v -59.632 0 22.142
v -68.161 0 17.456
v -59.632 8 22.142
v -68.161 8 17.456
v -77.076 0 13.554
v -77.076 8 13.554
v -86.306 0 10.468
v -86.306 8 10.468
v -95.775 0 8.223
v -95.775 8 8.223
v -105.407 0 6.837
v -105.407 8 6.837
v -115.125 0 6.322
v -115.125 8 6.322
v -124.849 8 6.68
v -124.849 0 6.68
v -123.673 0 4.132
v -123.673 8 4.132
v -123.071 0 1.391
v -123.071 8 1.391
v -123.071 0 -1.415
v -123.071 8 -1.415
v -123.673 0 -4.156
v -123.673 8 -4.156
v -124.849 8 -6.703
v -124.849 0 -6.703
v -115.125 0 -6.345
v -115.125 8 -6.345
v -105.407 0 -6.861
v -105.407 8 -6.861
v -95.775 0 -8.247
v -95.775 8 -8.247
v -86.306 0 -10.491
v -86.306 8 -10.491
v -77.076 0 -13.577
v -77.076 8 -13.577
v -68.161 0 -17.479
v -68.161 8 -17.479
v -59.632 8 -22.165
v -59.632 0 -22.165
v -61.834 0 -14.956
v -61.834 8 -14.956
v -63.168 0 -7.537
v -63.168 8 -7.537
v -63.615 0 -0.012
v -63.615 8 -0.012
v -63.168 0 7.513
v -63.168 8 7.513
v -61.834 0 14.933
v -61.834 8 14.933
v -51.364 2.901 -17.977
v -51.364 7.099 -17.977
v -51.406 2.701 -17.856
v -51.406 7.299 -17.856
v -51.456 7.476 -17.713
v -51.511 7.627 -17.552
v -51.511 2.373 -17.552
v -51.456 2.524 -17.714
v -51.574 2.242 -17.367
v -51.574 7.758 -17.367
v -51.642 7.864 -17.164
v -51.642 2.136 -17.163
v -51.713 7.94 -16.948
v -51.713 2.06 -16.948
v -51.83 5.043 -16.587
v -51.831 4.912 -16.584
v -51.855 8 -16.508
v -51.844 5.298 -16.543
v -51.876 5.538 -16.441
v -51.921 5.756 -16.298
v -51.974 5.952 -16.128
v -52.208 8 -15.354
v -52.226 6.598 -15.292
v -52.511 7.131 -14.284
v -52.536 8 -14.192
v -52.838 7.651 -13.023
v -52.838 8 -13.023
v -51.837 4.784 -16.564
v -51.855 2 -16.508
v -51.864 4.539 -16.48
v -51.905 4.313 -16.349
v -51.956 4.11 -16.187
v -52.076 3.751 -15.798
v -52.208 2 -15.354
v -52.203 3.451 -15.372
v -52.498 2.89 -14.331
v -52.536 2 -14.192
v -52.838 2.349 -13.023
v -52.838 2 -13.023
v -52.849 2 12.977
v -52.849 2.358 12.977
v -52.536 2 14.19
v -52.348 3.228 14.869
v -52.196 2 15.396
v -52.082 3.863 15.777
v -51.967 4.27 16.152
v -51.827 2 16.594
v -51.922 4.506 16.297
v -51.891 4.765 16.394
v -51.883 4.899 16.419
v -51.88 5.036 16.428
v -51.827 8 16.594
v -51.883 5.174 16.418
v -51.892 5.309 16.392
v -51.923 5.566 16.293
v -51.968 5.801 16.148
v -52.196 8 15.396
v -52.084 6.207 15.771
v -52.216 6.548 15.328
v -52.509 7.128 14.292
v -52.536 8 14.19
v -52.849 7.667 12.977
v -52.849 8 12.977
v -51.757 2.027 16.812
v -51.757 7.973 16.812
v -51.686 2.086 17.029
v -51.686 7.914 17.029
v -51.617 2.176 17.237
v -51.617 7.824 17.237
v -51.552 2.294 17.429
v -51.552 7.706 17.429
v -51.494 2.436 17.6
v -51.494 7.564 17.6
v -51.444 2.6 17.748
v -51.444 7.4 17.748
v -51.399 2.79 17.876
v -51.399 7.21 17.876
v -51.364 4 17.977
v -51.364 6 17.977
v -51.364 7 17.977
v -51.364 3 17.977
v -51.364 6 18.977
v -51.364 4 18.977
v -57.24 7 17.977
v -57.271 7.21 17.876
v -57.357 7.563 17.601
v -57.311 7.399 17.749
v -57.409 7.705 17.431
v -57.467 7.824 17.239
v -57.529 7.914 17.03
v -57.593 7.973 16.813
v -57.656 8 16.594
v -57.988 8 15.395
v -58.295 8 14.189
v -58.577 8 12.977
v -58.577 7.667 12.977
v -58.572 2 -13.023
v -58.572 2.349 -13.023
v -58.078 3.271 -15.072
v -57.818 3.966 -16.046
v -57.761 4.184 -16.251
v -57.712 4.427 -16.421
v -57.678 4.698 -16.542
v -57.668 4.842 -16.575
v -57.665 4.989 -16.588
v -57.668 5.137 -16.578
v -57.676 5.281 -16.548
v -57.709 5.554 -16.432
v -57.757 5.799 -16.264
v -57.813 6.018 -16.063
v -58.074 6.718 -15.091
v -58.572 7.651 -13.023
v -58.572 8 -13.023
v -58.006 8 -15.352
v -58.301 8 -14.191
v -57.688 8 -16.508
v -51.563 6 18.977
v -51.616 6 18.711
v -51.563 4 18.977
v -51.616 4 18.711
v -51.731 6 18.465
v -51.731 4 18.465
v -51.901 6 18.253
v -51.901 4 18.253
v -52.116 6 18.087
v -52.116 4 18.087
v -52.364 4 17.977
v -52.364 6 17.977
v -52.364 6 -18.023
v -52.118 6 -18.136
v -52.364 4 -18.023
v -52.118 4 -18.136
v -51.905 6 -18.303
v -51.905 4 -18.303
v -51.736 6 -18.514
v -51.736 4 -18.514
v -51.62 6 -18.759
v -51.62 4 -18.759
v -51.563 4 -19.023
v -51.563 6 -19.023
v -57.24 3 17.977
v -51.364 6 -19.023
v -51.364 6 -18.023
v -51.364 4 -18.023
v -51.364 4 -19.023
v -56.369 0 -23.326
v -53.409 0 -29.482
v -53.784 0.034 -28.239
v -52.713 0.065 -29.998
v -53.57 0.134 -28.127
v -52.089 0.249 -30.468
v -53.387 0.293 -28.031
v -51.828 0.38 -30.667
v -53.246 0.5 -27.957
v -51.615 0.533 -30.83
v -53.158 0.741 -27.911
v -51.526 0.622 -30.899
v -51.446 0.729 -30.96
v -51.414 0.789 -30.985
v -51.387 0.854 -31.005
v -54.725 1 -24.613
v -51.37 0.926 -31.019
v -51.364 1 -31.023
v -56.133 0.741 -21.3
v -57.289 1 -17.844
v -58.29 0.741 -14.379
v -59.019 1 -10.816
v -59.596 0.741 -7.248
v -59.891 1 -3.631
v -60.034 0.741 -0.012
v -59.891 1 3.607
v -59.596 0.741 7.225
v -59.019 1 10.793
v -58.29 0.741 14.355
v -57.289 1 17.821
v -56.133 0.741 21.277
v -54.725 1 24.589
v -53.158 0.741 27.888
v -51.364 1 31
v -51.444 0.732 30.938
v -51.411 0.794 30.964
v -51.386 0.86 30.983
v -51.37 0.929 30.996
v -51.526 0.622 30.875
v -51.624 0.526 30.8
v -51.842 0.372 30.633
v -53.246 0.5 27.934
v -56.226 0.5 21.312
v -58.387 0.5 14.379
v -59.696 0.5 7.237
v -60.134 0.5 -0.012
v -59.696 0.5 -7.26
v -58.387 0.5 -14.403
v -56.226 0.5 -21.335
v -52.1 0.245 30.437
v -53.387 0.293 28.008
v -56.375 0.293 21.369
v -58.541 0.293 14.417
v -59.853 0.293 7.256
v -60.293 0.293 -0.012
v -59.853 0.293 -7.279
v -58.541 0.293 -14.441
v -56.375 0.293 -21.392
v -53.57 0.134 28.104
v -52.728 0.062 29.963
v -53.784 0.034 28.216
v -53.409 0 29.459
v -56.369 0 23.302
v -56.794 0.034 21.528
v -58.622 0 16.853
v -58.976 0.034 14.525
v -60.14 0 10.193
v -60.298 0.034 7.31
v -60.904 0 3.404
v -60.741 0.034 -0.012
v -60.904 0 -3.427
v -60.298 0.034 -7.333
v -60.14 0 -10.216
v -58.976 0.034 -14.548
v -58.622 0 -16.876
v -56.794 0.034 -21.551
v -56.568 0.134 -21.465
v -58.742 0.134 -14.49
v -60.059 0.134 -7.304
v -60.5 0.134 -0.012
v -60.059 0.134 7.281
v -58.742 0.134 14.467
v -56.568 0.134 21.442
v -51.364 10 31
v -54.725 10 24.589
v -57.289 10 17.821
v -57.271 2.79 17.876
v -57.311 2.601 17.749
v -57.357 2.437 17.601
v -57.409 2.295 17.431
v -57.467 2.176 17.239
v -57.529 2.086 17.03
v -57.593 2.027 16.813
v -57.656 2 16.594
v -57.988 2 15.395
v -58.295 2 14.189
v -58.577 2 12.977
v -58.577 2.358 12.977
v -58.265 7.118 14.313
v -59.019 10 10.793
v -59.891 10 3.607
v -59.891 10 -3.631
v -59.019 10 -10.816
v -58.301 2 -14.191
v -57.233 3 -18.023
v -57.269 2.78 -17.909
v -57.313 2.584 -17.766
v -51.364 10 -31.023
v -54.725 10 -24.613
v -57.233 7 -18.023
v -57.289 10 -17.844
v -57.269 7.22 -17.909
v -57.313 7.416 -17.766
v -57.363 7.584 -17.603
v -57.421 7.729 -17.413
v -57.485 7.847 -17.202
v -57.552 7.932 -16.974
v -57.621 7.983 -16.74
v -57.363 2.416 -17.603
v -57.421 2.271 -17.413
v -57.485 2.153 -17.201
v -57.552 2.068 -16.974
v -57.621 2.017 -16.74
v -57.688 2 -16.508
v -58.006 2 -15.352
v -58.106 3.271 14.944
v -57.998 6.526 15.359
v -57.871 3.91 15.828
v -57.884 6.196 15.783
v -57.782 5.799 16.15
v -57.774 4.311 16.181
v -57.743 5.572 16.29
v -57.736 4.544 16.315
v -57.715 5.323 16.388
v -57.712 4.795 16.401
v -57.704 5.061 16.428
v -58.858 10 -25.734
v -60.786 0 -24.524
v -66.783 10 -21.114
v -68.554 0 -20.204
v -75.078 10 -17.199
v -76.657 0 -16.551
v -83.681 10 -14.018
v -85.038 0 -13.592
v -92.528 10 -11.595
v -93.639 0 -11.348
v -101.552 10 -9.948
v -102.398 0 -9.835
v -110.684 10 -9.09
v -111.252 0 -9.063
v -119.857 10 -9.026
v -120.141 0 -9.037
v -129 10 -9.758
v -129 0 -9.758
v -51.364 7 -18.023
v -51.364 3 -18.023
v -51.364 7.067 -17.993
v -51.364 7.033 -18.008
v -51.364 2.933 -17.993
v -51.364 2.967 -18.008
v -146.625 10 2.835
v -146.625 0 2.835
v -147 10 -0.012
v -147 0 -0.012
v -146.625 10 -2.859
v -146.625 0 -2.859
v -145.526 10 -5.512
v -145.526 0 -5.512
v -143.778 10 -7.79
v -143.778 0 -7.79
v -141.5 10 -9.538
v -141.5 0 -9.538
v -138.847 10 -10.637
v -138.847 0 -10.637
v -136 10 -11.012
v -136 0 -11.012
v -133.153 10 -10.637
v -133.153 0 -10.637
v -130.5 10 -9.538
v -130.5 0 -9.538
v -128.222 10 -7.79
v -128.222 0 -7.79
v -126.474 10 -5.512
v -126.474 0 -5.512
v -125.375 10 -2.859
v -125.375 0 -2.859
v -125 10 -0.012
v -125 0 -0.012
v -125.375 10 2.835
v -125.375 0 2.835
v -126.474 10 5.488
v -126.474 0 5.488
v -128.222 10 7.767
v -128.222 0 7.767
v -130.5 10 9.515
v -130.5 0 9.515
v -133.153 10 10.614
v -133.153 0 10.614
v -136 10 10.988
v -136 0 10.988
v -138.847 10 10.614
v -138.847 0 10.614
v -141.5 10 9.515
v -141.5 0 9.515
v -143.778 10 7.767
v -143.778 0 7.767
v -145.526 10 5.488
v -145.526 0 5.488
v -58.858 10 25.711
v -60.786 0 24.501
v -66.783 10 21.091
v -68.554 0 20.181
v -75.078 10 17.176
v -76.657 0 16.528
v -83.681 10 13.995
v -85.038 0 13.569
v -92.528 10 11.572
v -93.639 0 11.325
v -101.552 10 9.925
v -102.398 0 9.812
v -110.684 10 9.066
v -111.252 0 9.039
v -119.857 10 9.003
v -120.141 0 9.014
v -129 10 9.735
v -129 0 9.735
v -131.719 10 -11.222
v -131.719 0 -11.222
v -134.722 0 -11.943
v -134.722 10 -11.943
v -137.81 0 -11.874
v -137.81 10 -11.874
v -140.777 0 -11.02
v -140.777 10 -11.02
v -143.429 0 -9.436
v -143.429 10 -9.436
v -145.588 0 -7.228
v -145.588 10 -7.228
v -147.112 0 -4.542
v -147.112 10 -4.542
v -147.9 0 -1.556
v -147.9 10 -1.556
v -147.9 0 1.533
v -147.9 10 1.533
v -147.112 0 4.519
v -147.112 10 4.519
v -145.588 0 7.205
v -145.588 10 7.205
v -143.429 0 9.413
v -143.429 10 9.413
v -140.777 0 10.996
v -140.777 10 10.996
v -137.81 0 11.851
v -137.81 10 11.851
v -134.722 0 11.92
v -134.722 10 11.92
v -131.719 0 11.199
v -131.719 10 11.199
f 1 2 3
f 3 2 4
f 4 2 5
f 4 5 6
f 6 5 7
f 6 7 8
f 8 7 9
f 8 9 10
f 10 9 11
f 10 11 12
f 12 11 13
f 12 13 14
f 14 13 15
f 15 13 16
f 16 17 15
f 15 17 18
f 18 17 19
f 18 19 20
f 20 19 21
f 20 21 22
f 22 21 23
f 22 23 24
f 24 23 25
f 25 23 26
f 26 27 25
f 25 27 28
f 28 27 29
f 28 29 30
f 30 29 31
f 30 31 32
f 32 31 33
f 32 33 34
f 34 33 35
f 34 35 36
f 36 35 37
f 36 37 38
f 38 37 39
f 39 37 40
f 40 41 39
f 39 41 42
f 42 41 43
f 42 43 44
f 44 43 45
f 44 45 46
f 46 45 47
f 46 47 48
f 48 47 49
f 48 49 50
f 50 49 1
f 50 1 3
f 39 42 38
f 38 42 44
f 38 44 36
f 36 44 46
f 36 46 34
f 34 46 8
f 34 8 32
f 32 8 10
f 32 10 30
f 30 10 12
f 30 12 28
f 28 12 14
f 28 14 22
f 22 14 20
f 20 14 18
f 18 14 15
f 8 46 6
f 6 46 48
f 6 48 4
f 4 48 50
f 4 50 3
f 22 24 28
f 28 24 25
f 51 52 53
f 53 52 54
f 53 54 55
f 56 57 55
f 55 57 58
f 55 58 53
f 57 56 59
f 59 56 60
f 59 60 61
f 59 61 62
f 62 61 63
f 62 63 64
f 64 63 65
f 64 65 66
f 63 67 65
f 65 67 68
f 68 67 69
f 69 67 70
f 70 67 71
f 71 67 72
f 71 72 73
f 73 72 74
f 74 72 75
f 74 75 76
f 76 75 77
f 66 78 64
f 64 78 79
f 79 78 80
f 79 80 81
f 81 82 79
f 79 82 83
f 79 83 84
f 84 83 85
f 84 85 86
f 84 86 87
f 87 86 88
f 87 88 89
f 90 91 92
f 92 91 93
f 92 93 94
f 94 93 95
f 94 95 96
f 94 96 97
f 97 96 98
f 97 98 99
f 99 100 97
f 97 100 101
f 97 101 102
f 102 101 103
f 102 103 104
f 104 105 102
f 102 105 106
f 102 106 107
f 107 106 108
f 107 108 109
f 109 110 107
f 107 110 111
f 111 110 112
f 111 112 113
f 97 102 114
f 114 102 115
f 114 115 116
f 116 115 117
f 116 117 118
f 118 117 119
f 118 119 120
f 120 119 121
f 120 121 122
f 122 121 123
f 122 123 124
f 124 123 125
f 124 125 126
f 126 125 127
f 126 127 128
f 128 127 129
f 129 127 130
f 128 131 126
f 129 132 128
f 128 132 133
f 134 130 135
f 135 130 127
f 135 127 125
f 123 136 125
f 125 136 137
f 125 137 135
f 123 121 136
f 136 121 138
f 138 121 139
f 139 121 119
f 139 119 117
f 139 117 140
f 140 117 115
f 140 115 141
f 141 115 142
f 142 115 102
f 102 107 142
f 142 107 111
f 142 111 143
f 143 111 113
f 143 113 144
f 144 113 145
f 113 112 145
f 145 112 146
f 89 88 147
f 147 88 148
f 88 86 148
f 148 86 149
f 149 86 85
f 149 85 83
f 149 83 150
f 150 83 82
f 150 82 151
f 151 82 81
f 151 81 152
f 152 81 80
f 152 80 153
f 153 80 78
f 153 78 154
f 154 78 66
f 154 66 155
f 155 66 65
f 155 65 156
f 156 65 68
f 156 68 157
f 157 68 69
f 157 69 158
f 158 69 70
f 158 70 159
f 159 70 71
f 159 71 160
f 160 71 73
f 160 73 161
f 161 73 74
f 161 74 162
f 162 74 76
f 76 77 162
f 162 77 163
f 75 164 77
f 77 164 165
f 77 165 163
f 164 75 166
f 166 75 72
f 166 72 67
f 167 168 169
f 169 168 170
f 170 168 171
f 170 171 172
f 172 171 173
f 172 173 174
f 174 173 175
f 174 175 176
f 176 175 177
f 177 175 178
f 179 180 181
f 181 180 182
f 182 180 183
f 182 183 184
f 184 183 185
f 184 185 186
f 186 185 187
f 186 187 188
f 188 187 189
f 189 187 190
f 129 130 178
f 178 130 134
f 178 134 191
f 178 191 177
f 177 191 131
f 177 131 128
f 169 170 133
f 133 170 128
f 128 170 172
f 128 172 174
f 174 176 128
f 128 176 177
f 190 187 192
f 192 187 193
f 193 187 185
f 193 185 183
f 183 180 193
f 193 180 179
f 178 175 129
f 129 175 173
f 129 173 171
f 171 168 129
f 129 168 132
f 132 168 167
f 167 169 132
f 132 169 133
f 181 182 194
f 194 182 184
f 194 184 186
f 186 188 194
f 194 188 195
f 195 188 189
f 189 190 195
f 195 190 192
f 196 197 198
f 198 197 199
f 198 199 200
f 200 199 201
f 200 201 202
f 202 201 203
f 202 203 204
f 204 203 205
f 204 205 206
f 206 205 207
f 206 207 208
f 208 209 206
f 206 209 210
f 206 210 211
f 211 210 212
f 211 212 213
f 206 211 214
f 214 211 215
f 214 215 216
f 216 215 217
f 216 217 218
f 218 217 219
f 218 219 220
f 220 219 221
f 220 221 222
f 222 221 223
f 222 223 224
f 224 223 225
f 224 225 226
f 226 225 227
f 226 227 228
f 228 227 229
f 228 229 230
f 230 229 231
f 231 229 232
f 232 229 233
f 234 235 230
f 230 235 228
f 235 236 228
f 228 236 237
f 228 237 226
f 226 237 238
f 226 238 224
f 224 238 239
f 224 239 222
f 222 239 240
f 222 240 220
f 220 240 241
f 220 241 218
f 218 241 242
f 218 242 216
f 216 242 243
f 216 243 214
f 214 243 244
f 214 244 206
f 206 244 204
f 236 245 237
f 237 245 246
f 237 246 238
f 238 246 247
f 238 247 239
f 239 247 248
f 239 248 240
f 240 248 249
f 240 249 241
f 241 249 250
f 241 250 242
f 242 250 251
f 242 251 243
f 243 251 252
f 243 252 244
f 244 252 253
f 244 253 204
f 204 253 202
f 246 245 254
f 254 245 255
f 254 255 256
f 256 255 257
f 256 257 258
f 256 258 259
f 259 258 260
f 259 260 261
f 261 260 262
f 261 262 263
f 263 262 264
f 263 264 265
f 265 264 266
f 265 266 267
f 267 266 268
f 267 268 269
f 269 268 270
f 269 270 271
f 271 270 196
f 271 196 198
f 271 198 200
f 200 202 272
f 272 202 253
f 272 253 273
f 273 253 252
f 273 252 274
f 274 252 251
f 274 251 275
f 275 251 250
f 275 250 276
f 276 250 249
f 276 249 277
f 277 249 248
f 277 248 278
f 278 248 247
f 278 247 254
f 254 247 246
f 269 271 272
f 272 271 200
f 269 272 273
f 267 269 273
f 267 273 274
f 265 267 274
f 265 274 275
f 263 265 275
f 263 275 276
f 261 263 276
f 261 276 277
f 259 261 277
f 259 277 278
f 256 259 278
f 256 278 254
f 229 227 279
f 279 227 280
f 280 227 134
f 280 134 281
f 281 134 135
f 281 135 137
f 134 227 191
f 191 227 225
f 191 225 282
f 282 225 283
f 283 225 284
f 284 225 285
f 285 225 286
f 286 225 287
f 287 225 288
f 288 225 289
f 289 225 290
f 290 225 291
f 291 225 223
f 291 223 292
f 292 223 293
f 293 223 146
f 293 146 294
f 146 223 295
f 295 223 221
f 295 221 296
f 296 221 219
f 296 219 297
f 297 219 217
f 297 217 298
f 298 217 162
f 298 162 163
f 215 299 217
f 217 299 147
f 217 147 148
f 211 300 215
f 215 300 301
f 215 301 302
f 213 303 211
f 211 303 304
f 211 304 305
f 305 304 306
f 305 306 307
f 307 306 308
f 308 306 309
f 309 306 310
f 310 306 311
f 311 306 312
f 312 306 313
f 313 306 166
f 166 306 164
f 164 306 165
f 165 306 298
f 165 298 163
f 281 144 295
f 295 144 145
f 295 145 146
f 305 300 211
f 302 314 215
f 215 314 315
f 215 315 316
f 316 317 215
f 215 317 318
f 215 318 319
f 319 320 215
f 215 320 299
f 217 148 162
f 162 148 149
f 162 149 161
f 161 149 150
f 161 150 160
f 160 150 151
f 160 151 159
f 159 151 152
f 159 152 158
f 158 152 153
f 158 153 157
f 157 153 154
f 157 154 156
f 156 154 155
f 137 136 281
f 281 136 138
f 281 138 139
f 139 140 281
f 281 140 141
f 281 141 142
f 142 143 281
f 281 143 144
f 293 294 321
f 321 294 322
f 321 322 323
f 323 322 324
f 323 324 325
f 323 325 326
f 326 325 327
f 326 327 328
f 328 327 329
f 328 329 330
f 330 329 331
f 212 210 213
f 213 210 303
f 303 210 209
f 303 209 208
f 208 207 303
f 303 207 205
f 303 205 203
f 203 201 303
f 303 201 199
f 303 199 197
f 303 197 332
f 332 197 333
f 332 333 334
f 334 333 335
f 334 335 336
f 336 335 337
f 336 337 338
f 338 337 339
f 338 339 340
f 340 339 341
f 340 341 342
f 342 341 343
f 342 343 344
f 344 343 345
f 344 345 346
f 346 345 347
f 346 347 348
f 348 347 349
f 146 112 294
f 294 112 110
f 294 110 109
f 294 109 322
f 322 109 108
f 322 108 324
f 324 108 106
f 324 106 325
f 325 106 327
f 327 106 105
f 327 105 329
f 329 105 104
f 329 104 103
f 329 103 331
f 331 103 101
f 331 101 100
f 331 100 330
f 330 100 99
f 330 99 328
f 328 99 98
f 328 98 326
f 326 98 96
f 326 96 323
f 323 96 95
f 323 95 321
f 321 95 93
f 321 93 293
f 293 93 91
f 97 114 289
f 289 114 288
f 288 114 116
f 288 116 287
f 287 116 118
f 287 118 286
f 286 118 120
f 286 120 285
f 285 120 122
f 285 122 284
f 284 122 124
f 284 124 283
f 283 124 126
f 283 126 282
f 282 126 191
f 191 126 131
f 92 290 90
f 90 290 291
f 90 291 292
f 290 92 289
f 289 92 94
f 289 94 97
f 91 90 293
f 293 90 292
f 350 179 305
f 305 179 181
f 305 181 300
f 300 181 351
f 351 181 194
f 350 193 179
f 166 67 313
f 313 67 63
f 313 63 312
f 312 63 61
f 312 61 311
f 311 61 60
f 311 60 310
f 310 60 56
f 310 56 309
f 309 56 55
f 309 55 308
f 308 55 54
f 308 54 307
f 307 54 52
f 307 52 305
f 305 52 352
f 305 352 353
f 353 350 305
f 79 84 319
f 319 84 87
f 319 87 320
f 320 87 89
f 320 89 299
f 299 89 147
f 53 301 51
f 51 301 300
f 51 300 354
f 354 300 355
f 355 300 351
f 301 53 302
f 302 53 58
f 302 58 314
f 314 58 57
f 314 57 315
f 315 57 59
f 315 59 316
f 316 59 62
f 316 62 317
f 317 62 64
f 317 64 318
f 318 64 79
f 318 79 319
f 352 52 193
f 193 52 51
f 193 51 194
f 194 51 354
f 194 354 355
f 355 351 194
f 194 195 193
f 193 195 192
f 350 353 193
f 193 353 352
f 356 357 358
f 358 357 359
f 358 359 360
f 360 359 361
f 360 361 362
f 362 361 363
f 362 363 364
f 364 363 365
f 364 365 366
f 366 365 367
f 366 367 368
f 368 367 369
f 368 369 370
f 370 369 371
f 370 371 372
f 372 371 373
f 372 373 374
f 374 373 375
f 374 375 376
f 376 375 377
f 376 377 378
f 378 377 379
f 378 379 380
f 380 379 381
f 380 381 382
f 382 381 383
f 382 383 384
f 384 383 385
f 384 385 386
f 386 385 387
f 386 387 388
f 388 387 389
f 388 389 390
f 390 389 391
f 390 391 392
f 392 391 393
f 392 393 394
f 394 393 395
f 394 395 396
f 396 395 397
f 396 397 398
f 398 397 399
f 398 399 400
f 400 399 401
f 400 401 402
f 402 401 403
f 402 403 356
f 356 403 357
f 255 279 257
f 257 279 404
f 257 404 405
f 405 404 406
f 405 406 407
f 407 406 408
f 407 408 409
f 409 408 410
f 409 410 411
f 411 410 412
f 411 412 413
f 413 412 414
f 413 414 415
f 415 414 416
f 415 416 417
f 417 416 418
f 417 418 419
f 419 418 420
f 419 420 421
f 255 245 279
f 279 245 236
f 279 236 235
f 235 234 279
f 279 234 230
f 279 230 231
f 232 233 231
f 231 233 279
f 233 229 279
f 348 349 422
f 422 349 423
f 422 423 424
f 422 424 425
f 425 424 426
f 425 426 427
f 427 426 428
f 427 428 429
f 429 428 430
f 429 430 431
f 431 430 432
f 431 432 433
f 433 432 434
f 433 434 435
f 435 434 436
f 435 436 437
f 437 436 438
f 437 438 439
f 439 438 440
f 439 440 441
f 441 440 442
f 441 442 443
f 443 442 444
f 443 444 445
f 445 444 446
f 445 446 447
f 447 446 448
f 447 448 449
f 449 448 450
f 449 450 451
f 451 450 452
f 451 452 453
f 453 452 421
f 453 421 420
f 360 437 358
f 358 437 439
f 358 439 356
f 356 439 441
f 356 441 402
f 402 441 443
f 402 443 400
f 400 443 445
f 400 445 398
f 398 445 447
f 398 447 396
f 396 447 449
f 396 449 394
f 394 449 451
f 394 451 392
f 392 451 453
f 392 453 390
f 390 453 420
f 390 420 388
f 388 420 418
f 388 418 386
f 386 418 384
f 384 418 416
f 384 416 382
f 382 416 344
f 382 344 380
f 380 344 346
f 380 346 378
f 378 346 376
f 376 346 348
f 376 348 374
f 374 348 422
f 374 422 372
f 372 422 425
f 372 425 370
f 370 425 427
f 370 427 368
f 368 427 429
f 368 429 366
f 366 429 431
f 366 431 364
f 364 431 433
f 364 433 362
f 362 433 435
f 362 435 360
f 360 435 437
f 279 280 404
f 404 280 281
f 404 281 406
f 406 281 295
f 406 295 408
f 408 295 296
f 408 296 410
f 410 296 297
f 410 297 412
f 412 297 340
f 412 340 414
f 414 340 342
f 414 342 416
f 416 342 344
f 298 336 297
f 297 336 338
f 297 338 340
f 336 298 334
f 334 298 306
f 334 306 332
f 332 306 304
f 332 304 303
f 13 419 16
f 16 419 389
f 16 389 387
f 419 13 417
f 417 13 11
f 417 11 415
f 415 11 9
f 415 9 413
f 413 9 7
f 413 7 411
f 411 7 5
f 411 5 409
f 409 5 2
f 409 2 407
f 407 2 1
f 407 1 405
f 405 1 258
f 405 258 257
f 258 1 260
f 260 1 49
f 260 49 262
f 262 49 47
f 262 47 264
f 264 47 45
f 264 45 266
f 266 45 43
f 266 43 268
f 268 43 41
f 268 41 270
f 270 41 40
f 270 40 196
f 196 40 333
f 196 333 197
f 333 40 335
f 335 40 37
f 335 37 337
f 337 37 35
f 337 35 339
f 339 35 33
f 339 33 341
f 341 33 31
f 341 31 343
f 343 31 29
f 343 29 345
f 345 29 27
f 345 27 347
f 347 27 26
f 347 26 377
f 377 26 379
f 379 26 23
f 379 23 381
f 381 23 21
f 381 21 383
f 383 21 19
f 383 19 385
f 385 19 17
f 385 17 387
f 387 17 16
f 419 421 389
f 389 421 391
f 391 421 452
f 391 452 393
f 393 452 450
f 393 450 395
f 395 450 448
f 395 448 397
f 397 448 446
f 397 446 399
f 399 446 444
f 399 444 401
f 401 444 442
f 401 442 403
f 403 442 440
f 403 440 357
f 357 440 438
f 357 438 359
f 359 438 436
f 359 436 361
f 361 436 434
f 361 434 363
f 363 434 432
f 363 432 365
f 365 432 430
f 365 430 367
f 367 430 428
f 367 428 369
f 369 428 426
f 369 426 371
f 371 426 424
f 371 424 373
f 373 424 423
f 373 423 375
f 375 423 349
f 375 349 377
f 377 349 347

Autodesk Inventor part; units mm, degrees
ref_plane "YZ Plane" through (0, 0, 0) normal (1, 0, 0) x (0, 1, 0)
ref_plane "XZ Plane" through (0, 0, 0) normal (0, 1, 0) x (-1, 0, 0)
ref_plane "XY Plane" through (0, 0, 0) normal (0, 0, 1) x (1, 0, 0)
sketch "Esquisse1" plane through (0, 0, 0) normal (0, 1, 0) x (-1, 0, 0)
  arc A0 (51.3642, -31.0232) -> (51.3642, 31) centre (0, -0.0116) ccw
  arc A1 (129, -9.7584) -> (129, 9.7352) centre (136, -0.0116) ccw
  arc A2 (51.3642, 31) -> (129, 9.7352) centre (116, 114.6263) ccw
  line L0 (64, -0.0116) -> (129, -0.0116) construction
  arc A3 (129, -9.7584) -> (129, 9.7352) centre (136, -0.0116) ccw
  arc A4 (129, -9.7584) -> (51.3642, -31.0232) centre (116, -114.6495) ccw
  circle A5 centre (136, -0.0116) radius 11
  point P0 (0, 0)
  dimension "d0" = 120
  dimension "d1" = 24
  dimension "d2" = 22
extrude "Extrusion1" add sketch "Esquisse1" along normal blind 10
ref_plane "Plan de construction1" through (-51.3642, 0, -31.0232) normal (1, 0, 0) x (0, 1, 0)
sketch "Esquisse2" plane through (-51.3642, 0, -31.0232) normal (1, 0, 0) x (0, 1, 0)
  line L0 (5, 64.5652) -> (5, -0.1304) construction
  line L1 (3, 49) -> (7, 49)
  line L2 (8, 47.6173) -> (8, 44)
  line L3 (2, 44) -> (2, 47.6173)
  line L4 (2, 49) -> (8, 43) construction
  line L5 (8, 49) -> (2, 43) construction
  line L6 (8, 18) -> (8, 14.5151)
  line L7 (7, 13) -> (3, 13)
  line L8 (2, 14.5151) -> (2, 18)
  line L9 (2, 19) -> (8, 13) construction
  line L10 (8, 19) -> (2, 13) construction
  line L11 (10, 62.0232) -> (10, 0) projected
  line L12 (0, 0) -> (10, 0) projected
  line L13 (0, 62.0232) -> (10, 62.0232) projected
  spline S0 degree 4 poles (7.6671, 44) (6.4354, 47.4326) (4.9707, 48.7302) (3.6119, 47.2748) (2.3584, 44) knots 0 0 0 0 0 1 1 1 1 1
  spline S1 degree 4 poles (7.6511, 18) (6.3929, 14.6165) (5, 13.0055) (3.6071, 14.6165) (2.3489, 18) knots 0 0 0 0 0 1 1 1 1 1
  arc A0 (8, 47.4506) -> (7, 49) centre (6.4288, 47.5339) ccw
  arc A1 (3, 49) -> (2, 47.4506) centre (3.5712, 47.5339) ccw
  arc A2 (7, 13) -> (8, 14.5151) centre (6.3523, 14.5151) ccw
  arc A3 (2, 14.5151) -> (3, 13) centre (3.6477, 14.5151) ccw
  line L14 (2, 18) -> (2.3489, 18)
  line L15 (7.6511, 18) -> (8, 18)
  line L16 (2.776, 16.8516) -> (1.9218, 19.1484) construction
  arc A4 (2.0268, 18.9251) -> (2.7095, 17.0892) centre (24.2353, 26.1386) ccw construction
  line L17 (8.0782, 19.1484) -> (7.224, 16.8516) construction
  arc A5 (7.2905, 17.0892) -> (7.9732, 18.9251) centre (-14.2353, 26.1386) ccw construction
  line L18 (2, 44) -> (2.3584, 44)
  line L19 (7.6671, 44) -> (8, 44)
  line L20 (2.7888, 45.1243) -> (1.9281, 42.8757) construction
  arc A6 (2.7221, 44.891) -> (2.0343, 43.0939) centre (22.8073, 36.1728) ccw construction
  line L21 (8.0877, 42.828) -> (7.2466, 45.172) construction
  arc A7 (7.9784, 43.0548) -> (7.3065, 44.9274) centre (-10.0817, 37.6313) ccw construction
  point P0 (0, 31.0232)
  point P1 (5, 46)
  point P2 (5, 16)
  dimension "d10" = 2
  dimension "d11" = 2
  dimension "d12" = 13
  dimension "d13" = 13.0232
  dimension "d19" = 1
  dimension "d20" = 1
  dimension "d21" = 1
  dimension "d22" = 1
extrude "Extrusion2" add sketch "Esquisse2" against normal blind 10
sketch "Esquisse3" plane through (-51.3642, 8, 16.594) normal (0, 1, 0) x (1, 0, 0)
  point P0 (51.3642, 16.594)
sketch "Esquisse4" plane through (-51.3642, 8, 16.594) normal (0, 1, 0) x (1, 0, 0)
  point P0 (51.3642, 16.594)
ref_plane "Plan de construction7" through (-55.0062, 0, -31.0232) normal (1, 0, 0) x (0, 1, 0)
ref_plane "Plan de construction6" through (-60.1142, 0, -31.0232) normal (1, 0, 0) x (0, 1, 0)
fillet "Congé2" radius 1 1 edges at (-60, 0, -0.0116)
sketch "Esquisse7" plane through (-51.3642, 0, -31.0232) normal (1, 0, 0) x (0, 1, 0)
  line L0 (7, 49) -> (3, 49) projected
  line L1 (4, 49) -> (6, 49)
  line L2 (6, 49) -> (6, 50)
  line L3 (6, 50) -> (4, 50)
  line L4 (4, 50) -> (4, 49)
  line L5 (3, 13) -> (7, 13) projected
  line L6 (4, 13) -> (6, 13)
  line L7 (6, 13) -> (6, 12)
  line L8 (6, 12) -> (4, 12)
  line L9 (4, 12) -> (4, 13)
  point P0 (0, 31.0232)
extrude "Extrusion5" add sketch "Esquisse7" against normal blind 1
ref_plane "Plan de construction8" through (-51.3642, 4, -19.0232) normal (0, -1, 0) x (1, 0, 0)
sketch "Esquisse8" plane through (-51.3642, 4, -19.0232) normal (0, -1, 0) x (1, 0, 0)
  line L0 (-1, 37) -> (-1, 38) projected
  line L1 (0, 37) -> (-1, 37) projected
  line L2 (0, 1) -> (0, 0) projected
  line L3 (-1, 1) -> (-1, 0)
  line L4 (0, 1) -> (-5.8685, 1) projected
  line L5 (0, 38) -> (-1, 38) projected
  line L6 (-1, 37) -> (-1, 38)
  line L7 (-1, 0) -> (-1, 1) projected
  line L8 (0, 0) -> (0, 1) projected
  line L9 (-1, 1) -> (0, 1) projected
  line L10 (-1, 0) -> (-1, 1) projected
  line L11 (0, 0) -> (-1, 0) projected
  line L12 (0, 0) -> (0, 1) projected
  line L13 (-1, 1) -> (0, 1) projected
  line L14 (-1, 0) -> (-1, 1) projected
  line L15 (0, 0) -> (-1, 0) projected
  line L16 (0, 38) -> (0, 37) projected
  line L17 (0, 38) -> (-1, 38) projected
  line L18 (-1, 37) -> (-1, 38) projected
  line L19 (0, 37) -> (-1, 37) projected
  line L20 (0, 0) -> (-1, 0) projected
  line L21 (0, 1) -> (-1, 1) projected
  arc A0 (-0.1986, 0) -> (-1, 1) centre (-1.3637, -0.1126) ccw
  line L22 (0, 38) -> (-1, 38) projected
  arc A1 (-1, 37) -> (-0.1986, 38) centre (-1.3356, 38.0901) ccw
  point P0 (51.3642, 19.0232)
extrude "Extrusion6" cut sketch "Esquisse8" against normal blind 3.25 contours L0 L5 A1 | A0 L11 L3
sketch "Esquisse9" plane through (0, 0, 0) normal (0, 1, 0) x (-1, 0, 0)
  line L0 (51.3642, 17.9768) -> (57.24, 17.9768) projected
  circle A0 centre (0, 0) radius 54.4192
extrude "Extrusion7" cut sketch "Esquisse9" along normal blind 10.25
sketch "Esquisse10" plane through (0, 0, 0) normal (0, -1, 0) x (1, 0, 0)
  arc A0 (-53.4086, 29.459) -> (-53.4086, -29.4822) centre (0, -0.0116) ccw projected
  arc A1 (-129, 9.7352) -> (-53.4086, 29.459) centre (-116, 114.6263) ccw projected
  arc A2 (-129, 9.7352) -> (-129, -9.7584) centre (-136, -0.0116) ccw projected
  arc A3 (-53.4086, -29.4822) -> (-129, -9.7584) centre (-116, -114.6495) ccw projected
  circle A4 centre (-136, -0.0116) radius 11 projected
  arc A5 (-59.6325, 22.1419) -> (-59.6325, -22.1651) centre (0, -0.0116) ccw
  arc A6 (-124.8494, 6.6802) -> (-59.6325, 22.1419) centre (-116, 114.6263) ccw
  arc A7 (-124.8494, -6.7035) -> (-124.8494, 6.6802) centre (-136, -0.0116) ccw
  arc A8 (-59.6325, -22.1651) -> (-124.8494, -6.7035) centre (-116, -114.6495) ccw
  point P0 (0, 0)
extrude "Extrusion8" cut sketch "Esquisse10" against normal blind 8 contours A5 A8 A7 A6
properties part number "Aile"
